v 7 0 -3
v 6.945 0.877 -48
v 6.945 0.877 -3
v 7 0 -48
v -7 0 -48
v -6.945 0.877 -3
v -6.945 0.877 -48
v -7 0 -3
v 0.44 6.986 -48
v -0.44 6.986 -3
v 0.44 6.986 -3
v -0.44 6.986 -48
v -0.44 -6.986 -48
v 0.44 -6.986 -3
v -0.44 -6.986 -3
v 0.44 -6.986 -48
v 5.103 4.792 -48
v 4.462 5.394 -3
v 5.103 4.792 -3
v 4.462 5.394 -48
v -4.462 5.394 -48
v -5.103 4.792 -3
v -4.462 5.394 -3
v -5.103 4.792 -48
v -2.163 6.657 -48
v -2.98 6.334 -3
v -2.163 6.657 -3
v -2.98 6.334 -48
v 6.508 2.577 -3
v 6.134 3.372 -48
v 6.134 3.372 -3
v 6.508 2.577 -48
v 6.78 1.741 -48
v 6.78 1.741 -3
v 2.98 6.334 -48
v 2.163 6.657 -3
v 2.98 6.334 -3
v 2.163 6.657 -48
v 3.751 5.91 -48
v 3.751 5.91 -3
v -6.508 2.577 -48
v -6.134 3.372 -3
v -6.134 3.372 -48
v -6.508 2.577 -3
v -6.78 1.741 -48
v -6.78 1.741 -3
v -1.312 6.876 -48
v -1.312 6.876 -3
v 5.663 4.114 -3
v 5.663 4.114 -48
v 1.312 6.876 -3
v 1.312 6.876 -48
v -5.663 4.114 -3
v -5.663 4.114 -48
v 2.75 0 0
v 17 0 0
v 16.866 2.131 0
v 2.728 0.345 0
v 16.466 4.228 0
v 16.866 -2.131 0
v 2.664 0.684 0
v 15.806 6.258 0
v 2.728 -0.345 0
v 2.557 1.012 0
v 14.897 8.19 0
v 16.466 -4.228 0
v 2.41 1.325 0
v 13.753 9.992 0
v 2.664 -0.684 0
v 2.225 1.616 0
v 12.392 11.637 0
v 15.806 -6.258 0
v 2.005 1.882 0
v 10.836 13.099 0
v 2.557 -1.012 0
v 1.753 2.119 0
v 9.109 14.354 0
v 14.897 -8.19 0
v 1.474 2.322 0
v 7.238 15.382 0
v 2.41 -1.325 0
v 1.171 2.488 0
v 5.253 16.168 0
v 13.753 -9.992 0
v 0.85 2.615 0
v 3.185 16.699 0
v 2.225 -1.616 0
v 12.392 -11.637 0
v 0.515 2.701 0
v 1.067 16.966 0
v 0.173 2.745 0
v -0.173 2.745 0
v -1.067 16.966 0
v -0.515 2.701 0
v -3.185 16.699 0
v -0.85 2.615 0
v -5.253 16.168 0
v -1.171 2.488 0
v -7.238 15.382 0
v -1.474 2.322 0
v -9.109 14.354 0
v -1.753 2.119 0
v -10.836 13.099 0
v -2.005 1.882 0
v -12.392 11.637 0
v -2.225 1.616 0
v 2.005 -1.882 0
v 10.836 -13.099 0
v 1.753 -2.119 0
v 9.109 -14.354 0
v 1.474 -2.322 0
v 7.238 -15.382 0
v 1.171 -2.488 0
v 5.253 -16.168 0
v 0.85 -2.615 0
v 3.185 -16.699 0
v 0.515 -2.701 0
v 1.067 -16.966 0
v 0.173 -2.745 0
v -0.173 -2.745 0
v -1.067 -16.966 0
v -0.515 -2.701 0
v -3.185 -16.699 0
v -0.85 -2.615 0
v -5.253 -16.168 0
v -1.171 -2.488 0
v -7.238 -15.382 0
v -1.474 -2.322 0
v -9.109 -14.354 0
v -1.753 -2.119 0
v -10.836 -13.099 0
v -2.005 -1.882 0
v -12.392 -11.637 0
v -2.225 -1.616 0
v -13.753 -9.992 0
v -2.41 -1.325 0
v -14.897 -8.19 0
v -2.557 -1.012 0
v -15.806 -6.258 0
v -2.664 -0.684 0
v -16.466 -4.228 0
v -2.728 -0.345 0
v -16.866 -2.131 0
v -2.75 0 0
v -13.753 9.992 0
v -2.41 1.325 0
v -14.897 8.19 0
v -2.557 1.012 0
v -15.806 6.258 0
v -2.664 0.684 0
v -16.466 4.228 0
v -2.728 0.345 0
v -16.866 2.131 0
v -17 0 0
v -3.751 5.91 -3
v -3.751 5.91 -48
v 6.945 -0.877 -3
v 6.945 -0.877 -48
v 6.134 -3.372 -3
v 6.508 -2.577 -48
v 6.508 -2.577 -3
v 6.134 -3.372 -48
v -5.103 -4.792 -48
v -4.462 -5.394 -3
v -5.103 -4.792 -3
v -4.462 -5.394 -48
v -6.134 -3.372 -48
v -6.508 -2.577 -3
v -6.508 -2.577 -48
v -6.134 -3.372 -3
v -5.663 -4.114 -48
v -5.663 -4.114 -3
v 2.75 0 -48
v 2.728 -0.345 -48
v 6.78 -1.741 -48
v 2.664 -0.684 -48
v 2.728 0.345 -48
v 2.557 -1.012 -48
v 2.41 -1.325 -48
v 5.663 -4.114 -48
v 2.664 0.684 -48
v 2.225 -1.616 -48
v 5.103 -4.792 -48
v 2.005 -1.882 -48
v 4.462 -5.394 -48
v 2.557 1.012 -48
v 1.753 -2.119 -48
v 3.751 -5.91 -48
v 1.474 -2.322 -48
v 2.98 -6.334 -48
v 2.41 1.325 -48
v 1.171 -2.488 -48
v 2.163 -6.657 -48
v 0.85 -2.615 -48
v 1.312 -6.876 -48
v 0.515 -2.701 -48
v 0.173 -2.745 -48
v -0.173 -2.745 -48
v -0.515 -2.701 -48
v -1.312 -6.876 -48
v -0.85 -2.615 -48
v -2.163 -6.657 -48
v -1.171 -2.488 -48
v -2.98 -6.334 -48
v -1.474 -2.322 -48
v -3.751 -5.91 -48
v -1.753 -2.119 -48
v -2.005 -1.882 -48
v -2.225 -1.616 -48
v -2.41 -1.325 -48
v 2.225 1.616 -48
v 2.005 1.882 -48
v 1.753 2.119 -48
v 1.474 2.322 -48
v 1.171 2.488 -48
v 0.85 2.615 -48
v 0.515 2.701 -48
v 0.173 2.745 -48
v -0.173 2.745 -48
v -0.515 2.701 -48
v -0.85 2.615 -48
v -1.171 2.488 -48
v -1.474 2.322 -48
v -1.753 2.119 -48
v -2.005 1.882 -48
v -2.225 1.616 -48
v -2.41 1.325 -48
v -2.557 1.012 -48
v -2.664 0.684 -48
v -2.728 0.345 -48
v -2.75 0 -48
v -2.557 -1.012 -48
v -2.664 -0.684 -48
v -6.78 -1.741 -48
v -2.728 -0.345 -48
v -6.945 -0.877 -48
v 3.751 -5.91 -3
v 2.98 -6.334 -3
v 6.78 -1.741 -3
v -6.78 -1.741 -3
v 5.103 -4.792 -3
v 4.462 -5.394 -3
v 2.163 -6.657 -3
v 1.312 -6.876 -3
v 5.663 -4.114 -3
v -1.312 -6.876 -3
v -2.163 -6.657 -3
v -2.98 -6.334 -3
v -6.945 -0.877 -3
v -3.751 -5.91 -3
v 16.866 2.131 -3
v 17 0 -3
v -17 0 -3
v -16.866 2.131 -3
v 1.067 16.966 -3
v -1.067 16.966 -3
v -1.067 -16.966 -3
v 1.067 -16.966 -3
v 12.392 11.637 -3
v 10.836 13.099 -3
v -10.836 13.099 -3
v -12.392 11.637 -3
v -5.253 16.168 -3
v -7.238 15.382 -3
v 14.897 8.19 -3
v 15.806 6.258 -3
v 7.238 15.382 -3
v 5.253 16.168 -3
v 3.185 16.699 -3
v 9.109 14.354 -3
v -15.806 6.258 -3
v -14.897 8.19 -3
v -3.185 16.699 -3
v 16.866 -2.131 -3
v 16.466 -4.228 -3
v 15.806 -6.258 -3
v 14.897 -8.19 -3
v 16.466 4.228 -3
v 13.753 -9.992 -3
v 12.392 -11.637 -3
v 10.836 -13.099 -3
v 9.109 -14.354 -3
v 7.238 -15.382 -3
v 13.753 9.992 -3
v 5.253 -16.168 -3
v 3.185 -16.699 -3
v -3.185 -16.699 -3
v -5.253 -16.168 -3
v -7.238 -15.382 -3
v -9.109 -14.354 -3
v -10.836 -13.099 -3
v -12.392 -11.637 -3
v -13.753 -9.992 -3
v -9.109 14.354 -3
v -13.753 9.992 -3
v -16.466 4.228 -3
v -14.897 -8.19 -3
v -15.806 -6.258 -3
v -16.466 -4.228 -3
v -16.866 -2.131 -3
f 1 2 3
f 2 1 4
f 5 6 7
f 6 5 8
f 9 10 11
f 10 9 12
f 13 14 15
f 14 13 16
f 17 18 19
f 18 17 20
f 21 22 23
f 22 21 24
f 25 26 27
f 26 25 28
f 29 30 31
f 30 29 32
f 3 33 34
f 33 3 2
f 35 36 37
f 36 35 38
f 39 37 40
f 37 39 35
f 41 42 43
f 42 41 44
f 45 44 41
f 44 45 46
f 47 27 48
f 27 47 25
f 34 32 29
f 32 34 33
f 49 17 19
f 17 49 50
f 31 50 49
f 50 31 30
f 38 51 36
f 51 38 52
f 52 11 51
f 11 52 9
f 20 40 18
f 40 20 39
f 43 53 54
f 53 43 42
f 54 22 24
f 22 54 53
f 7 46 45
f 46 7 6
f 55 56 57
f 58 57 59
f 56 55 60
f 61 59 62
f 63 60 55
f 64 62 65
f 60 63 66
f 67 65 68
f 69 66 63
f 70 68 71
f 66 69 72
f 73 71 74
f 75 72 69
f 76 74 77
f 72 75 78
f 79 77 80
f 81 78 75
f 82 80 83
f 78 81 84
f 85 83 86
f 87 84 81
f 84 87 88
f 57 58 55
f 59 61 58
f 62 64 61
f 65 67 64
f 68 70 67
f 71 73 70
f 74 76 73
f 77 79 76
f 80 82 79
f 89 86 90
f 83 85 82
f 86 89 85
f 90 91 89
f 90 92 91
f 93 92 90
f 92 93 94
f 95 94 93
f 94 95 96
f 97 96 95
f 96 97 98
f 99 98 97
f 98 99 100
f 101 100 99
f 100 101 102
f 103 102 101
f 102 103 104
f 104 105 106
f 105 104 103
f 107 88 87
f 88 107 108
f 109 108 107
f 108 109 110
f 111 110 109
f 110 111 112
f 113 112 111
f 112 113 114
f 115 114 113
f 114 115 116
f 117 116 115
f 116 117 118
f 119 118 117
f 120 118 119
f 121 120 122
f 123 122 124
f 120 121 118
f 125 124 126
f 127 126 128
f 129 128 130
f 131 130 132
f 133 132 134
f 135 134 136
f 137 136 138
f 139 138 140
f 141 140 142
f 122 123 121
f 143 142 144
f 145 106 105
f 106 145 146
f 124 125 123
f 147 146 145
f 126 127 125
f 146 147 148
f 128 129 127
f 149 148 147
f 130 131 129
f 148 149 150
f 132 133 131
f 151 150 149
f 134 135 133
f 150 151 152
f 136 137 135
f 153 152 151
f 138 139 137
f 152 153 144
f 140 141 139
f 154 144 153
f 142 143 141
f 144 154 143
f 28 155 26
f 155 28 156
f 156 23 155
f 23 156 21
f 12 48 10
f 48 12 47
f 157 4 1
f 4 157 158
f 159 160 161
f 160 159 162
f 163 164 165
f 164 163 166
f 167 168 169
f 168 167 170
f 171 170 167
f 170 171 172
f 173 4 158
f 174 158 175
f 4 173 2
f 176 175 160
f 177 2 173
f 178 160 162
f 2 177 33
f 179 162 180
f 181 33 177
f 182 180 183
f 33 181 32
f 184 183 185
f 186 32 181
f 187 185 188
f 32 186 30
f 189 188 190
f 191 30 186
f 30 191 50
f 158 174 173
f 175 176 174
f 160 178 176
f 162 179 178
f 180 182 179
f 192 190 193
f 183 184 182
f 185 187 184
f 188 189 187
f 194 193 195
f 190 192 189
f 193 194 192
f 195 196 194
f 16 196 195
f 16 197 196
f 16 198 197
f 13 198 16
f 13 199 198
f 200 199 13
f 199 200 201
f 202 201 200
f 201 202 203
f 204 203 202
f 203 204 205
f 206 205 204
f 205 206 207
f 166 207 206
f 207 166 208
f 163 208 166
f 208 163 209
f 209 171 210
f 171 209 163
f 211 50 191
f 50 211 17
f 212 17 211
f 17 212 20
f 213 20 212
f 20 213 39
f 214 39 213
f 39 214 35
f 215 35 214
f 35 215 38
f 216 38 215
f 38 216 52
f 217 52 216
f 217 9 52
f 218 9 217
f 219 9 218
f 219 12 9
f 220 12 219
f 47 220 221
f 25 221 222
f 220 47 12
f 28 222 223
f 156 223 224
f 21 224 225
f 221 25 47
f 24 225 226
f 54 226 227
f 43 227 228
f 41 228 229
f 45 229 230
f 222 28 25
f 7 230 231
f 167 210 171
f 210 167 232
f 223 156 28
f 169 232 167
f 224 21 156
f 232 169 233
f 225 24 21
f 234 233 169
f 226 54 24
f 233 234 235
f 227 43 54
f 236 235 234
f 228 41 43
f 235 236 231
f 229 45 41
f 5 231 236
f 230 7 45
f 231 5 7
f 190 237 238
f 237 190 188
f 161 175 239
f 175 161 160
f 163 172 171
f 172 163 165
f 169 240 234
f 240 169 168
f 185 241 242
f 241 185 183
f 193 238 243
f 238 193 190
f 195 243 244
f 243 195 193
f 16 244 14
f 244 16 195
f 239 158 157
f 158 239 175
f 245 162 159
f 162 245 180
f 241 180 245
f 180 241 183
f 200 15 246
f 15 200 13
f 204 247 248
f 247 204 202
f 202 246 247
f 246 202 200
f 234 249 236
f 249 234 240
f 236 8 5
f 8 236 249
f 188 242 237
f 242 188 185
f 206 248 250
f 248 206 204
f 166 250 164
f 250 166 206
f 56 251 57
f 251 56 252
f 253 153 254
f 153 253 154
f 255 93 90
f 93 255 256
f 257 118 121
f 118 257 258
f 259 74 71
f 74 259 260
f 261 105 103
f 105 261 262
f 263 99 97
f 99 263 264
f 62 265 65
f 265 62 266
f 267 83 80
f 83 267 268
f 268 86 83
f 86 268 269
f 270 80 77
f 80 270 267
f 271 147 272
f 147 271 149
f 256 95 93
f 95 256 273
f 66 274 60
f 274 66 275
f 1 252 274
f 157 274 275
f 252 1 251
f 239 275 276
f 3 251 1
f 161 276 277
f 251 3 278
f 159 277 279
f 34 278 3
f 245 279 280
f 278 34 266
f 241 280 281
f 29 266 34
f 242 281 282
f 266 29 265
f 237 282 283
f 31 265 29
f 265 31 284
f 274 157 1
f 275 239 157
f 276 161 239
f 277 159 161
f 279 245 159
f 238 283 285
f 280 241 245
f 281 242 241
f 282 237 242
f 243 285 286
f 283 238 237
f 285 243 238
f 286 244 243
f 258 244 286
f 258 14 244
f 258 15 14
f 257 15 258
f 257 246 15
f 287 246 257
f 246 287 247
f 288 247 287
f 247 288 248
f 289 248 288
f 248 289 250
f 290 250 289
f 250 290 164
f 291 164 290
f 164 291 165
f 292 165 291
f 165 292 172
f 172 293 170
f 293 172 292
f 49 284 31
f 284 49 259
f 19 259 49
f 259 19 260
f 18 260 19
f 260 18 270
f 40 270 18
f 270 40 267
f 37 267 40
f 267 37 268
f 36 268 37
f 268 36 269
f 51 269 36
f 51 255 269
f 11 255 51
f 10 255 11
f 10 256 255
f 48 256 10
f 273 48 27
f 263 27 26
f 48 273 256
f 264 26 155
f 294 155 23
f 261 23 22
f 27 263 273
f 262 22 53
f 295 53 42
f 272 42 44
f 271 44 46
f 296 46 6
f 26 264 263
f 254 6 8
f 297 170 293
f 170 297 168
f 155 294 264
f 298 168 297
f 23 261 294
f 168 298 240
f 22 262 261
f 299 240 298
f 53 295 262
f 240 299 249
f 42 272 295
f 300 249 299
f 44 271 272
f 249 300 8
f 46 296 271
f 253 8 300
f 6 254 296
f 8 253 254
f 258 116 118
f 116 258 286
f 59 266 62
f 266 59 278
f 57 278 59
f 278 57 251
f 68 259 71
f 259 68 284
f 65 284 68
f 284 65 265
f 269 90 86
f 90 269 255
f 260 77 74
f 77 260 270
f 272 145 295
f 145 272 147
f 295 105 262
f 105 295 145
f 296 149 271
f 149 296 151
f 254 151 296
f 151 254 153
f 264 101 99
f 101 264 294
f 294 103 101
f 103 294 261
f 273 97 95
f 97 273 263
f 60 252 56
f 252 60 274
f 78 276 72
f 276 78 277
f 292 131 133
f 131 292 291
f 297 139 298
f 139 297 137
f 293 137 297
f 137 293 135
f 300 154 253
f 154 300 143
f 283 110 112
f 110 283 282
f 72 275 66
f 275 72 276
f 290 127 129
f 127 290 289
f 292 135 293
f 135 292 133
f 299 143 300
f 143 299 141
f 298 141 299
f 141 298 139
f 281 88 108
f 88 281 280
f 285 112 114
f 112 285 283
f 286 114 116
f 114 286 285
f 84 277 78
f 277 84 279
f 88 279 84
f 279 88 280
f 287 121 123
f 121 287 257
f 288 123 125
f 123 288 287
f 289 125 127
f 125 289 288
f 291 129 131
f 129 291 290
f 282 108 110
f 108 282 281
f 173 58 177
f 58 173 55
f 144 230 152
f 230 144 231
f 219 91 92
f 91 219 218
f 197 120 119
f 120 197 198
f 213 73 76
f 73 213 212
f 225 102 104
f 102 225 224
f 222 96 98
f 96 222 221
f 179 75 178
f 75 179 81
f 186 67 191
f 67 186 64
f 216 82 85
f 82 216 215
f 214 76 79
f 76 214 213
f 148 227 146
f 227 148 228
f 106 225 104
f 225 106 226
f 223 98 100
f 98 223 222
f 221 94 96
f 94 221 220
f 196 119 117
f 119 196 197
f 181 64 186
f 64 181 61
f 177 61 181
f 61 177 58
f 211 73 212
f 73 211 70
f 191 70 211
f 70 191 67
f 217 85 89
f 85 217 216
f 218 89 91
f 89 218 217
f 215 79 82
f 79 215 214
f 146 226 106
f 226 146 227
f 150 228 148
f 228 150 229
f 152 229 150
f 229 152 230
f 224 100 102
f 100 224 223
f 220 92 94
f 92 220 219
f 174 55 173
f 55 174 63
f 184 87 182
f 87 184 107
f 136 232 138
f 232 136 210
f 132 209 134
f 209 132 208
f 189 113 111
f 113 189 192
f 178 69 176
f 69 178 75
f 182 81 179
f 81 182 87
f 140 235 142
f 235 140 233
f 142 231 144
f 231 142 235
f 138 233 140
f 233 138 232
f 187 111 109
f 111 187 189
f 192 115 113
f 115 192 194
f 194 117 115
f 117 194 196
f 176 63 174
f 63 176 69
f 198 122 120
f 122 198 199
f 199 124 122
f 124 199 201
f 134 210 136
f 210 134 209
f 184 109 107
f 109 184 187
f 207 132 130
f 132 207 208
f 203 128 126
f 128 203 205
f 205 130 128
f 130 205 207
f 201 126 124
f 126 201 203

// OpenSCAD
$fn = 50;


difference() {
	union() {
		translate(v = [0, 0, -48.0000000000]) {
			cylinder(h = 48, r = 7.0000000000);
		}
		translate(v = [0, 0, -3.0000000000]) {
			cylinder(h = 3, r = 17.0000000000);
		}
	}
	union() {
		#translate(v = [0, 0, -48]) {
			cylinder(h = 48, r = 2.7500000000);
		}
	}
}
